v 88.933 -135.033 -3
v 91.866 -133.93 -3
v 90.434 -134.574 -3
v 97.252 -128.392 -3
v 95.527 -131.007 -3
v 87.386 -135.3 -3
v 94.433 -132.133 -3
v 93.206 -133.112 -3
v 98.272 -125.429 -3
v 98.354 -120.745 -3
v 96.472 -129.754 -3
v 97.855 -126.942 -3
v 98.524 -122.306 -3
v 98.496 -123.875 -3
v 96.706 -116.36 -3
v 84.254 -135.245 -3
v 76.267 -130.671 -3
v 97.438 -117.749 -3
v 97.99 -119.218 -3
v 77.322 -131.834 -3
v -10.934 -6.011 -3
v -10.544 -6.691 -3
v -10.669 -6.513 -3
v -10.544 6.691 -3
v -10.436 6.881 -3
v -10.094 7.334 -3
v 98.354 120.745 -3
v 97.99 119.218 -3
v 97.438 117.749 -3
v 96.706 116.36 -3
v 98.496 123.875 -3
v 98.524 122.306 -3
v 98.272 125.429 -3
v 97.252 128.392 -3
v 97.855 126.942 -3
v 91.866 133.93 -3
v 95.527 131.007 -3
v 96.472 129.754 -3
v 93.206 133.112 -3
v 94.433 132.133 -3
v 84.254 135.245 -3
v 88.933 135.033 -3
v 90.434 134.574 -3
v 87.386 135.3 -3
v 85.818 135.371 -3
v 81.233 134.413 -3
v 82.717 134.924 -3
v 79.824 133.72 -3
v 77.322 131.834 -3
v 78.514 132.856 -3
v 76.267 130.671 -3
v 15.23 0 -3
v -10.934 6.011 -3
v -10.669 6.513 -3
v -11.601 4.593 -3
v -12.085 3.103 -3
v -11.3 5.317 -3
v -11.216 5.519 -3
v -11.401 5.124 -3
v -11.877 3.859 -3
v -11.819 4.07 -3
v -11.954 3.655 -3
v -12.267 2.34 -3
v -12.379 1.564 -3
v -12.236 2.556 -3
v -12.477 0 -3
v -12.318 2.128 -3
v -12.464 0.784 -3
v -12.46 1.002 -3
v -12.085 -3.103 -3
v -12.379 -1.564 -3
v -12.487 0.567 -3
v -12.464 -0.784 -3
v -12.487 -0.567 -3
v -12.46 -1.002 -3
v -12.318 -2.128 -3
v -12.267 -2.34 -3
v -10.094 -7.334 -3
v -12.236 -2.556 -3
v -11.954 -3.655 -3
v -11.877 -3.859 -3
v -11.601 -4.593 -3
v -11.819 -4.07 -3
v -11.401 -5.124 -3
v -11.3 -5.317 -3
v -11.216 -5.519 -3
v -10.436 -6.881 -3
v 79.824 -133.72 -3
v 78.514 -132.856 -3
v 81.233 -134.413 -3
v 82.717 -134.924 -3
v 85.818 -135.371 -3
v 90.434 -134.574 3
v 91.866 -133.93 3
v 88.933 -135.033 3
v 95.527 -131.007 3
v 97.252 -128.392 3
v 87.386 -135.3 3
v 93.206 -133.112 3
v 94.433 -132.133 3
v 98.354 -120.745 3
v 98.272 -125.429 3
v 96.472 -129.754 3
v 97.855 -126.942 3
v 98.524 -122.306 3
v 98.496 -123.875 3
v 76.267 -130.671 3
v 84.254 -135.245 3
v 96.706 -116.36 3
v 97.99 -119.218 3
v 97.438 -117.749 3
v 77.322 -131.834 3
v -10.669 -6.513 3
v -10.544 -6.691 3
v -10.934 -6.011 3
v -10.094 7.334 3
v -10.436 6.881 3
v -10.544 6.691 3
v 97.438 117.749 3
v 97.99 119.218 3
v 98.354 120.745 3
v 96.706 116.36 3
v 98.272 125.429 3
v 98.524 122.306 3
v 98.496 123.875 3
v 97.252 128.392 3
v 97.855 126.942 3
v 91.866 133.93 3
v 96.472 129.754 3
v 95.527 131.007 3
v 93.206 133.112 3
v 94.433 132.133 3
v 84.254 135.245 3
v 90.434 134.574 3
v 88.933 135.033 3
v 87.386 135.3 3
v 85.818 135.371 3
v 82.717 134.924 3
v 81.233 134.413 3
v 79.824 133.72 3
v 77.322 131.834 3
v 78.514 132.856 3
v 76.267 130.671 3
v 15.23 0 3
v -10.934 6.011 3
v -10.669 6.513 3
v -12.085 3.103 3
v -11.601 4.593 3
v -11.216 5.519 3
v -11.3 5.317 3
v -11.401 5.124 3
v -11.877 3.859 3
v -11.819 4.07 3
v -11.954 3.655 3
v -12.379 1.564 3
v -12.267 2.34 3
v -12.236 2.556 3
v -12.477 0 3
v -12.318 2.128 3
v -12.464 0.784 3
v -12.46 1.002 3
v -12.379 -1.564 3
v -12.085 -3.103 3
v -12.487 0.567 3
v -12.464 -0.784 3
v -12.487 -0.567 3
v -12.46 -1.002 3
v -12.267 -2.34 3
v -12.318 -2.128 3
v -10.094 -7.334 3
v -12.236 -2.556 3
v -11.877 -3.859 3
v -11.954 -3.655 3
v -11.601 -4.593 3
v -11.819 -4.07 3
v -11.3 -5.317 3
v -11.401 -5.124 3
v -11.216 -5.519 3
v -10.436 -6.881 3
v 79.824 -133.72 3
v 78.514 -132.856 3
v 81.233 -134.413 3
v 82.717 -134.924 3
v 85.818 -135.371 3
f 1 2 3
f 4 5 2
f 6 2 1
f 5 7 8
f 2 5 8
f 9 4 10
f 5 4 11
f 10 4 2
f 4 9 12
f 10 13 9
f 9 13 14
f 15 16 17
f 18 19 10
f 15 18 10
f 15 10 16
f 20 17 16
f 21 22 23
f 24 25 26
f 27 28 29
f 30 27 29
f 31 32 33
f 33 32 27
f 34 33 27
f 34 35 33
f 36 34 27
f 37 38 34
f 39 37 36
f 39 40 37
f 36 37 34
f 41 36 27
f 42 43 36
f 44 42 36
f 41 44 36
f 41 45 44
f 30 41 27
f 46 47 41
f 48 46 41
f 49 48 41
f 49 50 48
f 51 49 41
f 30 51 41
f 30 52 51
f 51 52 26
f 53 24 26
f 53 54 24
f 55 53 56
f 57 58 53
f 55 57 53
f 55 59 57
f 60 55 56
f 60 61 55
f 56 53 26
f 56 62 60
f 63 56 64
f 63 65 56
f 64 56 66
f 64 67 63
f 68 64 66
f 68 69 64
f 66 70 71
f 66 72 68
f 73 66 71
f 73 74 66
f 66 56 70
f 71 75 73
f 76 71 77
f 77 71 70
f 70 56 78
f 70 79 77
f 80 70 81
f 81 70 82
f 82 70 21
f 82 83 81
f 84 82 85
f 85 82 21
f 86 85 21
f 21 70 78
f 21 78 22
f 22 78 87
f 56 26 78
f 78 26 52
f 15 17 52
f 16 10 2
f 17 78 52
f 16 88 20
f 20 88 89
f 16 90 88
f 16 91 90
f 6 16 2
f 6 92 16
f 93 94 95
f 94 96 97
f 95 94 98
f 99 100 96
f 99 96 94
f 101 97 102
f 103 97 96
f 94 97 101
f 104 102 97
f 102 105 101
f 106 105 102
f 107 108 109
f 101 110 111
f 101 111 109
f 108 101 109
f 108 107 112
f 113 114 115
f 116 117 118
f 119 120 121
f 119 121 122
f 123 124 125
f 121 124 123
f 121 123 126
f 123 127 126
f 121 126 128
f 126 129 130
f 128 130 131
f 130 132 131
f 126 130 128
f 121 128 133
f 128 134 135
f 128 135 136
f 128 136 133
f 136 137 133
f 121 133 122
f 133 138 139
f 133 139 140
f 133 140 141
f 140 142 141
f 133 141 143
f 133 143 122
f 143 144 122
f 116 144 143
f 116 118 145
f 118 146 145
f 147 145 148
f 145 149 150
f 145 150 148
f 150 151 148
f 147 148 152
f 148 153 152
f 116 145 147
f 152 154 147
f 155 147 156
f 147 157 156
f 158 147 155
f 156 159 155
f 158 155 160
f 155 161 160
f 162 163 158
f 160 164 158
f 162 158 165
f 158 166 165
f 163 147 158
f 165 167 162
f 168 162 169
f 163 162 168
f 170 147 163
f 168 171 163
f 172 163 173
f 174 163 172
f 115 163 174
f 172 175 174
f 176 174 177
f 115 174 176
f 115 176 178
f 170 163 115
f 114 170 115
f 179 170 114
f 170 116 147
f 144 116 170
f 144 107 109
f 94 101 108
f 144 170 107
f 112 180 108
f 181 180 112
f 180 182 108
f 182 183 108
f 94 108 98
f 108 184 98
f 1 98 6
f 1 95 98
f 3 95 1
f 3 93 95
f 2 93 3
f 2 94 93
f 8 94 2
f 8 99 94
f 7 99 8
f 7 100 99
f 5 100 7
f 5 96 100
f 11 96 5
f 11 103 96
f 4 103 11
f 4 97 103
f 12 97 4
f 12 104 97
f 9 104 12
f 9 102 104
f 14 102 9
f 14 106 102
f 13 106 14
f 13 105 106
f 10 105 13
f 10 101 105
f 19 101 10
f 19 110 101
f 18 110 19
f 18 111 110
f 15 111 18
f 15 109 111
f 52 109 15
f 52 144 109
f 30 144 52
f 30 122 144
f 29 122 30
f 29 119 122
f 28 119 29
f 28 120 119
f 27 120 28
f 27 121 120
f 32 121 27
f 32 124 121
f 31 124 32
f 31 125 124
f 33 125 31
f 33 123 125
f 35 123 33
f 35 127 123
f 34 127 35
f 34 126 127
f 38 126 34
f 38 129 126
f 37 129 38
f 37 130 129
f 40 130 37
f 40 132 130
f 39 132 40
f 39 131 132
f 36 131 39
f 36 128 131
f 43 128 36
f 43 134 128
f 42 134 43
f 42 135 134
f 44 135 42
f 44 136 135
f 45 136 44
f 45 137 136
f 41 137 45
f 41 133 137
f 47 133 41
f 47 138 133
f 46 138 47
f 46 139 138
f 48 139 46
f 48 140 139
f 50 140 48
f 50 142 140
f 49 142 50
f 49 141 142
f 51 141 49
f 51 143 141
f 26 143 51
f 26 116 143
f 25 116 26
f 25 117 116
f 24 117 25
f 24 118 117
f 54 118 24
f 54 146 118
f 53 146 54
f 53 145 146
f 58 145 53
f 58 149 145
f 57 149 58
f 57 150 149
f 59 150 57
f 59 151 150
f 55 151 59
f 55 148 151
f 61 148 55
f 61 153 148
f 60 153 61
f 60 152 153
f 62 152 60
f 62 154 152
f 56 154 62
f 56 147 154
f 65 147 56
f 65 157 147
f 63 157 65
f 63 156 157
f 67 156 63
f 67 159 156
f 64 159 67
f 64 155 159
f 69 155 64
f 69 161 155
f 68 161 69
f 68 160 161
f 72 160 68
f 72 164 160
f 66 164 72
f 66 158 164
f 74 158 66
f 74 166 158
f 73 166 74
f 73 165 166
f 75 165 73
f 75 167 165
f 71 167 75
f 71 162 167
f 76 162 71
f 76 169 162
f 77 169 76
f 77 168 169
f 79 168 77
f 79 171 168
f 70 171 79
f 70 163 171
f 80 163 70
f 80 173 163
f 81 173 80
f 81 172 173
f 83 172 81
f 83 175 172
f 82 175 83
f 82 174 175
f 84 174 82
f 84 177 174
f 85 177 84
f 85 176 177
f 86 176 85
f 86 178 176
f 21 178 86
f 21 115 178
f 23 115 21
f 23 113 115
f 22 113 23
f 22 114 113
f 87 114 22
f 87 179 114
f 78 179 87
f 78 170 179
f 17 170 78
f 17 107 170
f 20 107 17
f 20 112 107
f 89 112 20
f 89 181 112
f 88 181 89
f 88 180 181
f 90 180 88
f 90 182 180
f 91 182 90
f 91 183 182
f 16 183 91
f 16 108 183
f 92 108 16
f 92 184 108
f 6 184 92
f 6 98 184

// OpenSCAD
// --- Parameters ---

// Length of each arm from the center vertex to the tip
arm_length = 150; // [mm]

// Width of the arms
arm_width = 25; // [mm]

// Thickness of the boomerang
thickness = 6; // [mm]

// Angle between the two arms
angle_between_arms = 110; // [degrees]

// Smoothness of curves (higher value = smoother, slower rendering)
smoothness = $fn > 0 ? $fn : 50; // Use $fn if defined, otherwise 50

// --- Geometry Generation ---

// Module defining a single arm shape (2D)
// It creates a shape resembling an arm by taking the hull of two circles.
module arm_shape_2d() {
    hull() {
        // Circle at the origin (vertex)
        circle(d = arm_width, $fn = smoothness);
        // Circle at the arm tip, translated along the x-axis
        translate([arm_length, 0, 0]) circle(d = arm_width, $fn = smoothness);
    }
}

// --- Main Boomerang Construction ---

// Use linear_extrude to give the 2D shape thickness
linear_extrude(height = thickness, center = true) {
    // Use union to combine the two arms
    union() {
        // First arm: Rotate half the angle negatively around Z-axis
        rotate([0, 0, -angle_between_arms / 2]) {
            arm_shape_2d();
        }
        // Second arm: Rotate half the angle positively around Z-axis
        rotate([0, 0, angle_between_arms / 2]) {
            arm_shape_2d();
        }
    }
}
